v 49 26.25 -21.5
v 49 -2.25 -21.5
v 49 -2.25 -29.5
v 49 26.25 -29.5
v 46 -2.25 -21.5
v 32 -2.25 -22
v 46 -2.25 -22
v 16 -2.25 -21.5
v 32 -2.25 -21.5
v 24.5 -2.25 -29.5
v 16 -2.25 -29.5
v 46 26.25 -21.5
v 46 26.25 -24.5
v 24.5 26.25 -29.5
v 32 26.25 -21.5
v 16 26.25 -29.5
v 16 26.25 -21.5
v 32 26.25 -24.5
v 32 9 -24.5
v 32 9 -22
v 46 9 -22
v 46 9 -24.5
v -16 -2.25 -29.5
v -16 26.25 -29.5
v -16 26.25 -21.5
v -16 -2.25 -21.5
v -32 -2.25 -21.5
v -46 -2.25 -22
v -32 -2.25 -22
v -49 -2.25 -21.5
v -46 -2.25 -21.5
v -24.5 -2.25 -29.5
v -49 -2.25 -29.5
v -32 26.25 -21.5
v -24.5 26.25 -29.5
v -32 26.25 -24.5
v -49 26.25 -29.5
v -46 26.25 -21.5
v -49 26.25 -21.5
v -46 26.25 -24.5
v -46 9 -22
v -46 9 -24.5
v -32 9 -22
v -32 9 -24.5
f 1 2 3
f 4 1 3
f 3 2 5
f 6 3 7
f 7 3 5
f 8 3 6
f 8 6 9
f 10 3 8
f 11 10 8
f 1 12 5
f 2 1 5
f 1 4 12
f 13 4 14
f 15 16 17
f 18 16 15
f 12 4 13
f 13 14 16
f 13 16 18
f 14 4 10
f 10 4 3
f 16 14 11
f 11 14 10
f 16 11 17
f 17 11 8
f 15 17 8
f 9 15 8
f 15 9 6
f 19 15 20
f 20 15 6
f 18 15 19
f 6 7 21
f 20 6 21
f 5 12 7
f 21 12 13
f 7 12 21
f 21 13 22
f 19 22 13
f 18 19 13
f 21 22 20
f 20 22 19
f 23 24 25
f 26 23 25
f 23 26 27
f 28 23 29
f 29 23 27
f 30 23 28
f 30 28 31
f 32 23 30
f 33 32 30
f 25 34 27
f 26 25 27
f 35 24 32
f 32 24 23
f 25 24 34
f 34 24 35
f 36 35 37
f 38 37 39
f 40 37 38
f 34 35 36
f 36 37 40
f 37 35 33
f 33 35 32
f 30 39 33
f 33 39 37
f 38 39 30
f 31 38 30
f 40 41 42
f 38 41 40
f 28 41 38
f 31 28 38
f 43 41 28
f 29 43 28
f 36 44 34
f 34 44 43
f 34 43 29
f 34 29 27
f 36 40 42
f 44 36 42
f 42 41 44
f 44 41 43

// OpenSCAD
/* Hive13 SumoBot Chassis/Frame */ 

// The front plow takes up a depth of 16.
// Some space is used for linesensor screw holes ~14mm

max_w = 98;
max_d = 98 - 16;

batterypack_w = 63;
batterypack_h = 15;
batterypack_d = 49;

bpack2_w = 54;
bpack2_h = 11;
bpack2_d = 31;

micro_w = 70;
micro_h = 15; // We just go to the top of the shield
micro_d = 54;

frame_w = max_w;
frame_h = 3;
frame_d = max_d;

// tire + motor thickness ~30 
wheel_radius = 15.5;
wheel_thickness = 14;
motor_w =14;
motor_h = 54;
motor_d = 20;
lip_w = motor_w;
lip_h = 18;
lip_d = 25;
lip_dist_from_bottom_motor = 36;
tire_distance = 9;
offset_w =2;
wheel_position=10; 
clearance_ground=2;

tab_plow_d=10;// tab to connect to screw in with the plow
linesensor_spacing = 18;
linesensor_depth = 23;
frame_wheel_d = 36;
wheel_clearance = 17;
backwall_thickness = 15;

module baseframe() {
difference() {
union() {
cube([frame_w, frame_d, frame_h]);
// mounting tabs
translate(v=[(frame_w - bpack2_d) /2, frame_d, 0]) {
difference() {
cube([bpack2_d,10 , frame_h+6]);
translate(v=[5, 5, 0]) {
cylinder(r = 2, h=frame_h+6);
}
translate(v=[bpack2_d-5, 5, 0]) {
cylinder(r = 2, h=frame_h+6);
}
}
}
//translate(v=[frame_w-linesensor_spacing-10, frame_d, 0]) {
//difference() {
// cube([10, 10, frame_h]);
// translate(v=[5, 5, 0]) {
// cylinder(r = 2, h=frame_h);
// }
//}
// }
// Wheel/Motor holder block
difference() // subtract out overhangs and wire section
{//Motor holder both sides.....
translate(v = [0,frame_wheel_d+1,frame_h]) {
cube([frame_w, frame_d -(frame_wheel_d + linesensor_depth)-2,motor_d-1+offset_w]);// replace batterypack_h + bpack2_h + micro_h by motor_d -1
}
// Removes space over motors
// translate(v = [2,frame_wheel_d+1,frame_h +bpack2_h]) {
// cube([motor_w, frame_d -(frame_wheel_d + linesensor_depth-1), batterypack_h + micro_h]);
// }
//translate(v = [frame_w-motor_w-2,frame_wheel_d+1,frame_h +bpack2_h]) {
// cube([motor_w, frame_d -(frame_wheel_d + linesensor_depth-1), batterypack_h + micro_h]);
// }
// Remove area over batterypacks
translate(v = [(frame_w + batterypack_d) / 2, frame_d-batterypack_w, frame_h+bpack2_h+wheel_clearance]) {
rotate([0,0,90]) {
batterypack();
}
}

translate(v = [(frame_w + bpack2_d) /2,frame_d-bpack2_w,frame_h]) {
rotate([0,0,90]) {
//bpack2();
cube([bpack2_w, bpack2_d, bpack2_h+wheel_clearance]);
}
}
translate(v = [(frame_w - micro_d) / 2, frame_d-batterypack_w, frame_h+bpack2_h+batterypack_h+wheel_clearance]) {
cube([micro_d, batterypack_w, 40]);
}

}
// Backwall
translate(v=[(frame_w + bpack2_d+10) /2-bpack2_d,frame_d-bpack2_w-backwall_thickness-2,frame_h]) {
cube([bpack2_d-10, backwall_thickness, bpack2_h+wheel_clearance]);
}
// Backwall second piece
translate(v = [(frame_w + bpack2_d)/2-bpack2_d,10,frame_h]) {
cube([bpack2_d, 7, bpack2_h+micro_h+batterypack_h]);
}
} // union


// Remove linesensor area
translate(v = [0,frame_d-linesensor_depth,0]) {
cube([linesensor_spacing, linesensor_depth, frame_h]);
}
translate(v = [frame_w - linesensor_spacing,frame_d-linesensor_depth,0]) {
cube([linesensor_spacing, linesensor_depth, frame_h]);
}
// Remove tires
translate(v = [0,0,0]) {
cube([motor_w + wheel_thickness + 4, frame_wheel_d, frame_h]);
}
translate(v = [frame_w-motor_w-wheel_thickness-4,0,0]) {
cube([motor_w + wheel_thickness + 4, frame_wheel_d, frame_h]);
}
// Remove unneeded space in the back
translate(v =[(frame_w + bpack2_d-5) /2-bpack2_d,0,0]) {
cube([bpack2_d+10, 10, frame_h]);
}
// Remove a hole for power switch
translate(v = [frame_w-linesensor_spacing-15,frame_d-linesensor_depth,0]) {
cube([15, 23, frame_h]);
}
// This one is mainly for looks
translate(v = [linesensor_spacing,frame_d-linesensor_depth,0]) {
cube([15, 23, frame_h]);
}
// Remove the wheels
// Right Tire
translate(v = [max_w-2, 7,-motor_d+22+offset_w]) {
rotate(a = [270, 180, 0]) {
motor();
}
}
// Left Tire
translate(v = [2, 7, 22+offset_w]) {
rotate(a = [270, 0, 0]) {
motor();
}
}

} // difference
}

module batterypack() {
color([0, 127, 127, 255]) {
cube(size=[batterypack_d, batterypack_w, batterypack_h],center=true);
}
}

module bpack2() {
color([127,127,0,255]) {
cube([bpack2_w, bpack2_d, bpack2_h]);
}
}

module micro() {
cube([micro_w, micro_d, micro_h]);
}

module motor() {
color([0,0,0,255]) {
union() {
cube(size=[motor_w, motor_h, motor_d], center = true );
// Lip
translate(v = [0, lip_dist_from_bottom_motor-lip_h, 0]) {//[0, -(lip_d-motor_d)/2, lip_dist_from_bottom_motor]
cube(size=[lip_w, lip_h, lip_d],center=true);
}
// wheel
translate(v = [-motor_w,-(motor_h-wheel_position)/2,0]) {//[motor_w,motor_d/2,motor_d/2]
rotate(a = [0, 90, 0]) {
cylinder(r = wheel_radius, h = wheel_thickness, center=true);
}
}
}
}
}


//
//translate(v =[0,0,6]) {
//baseframe();
//}

// NEW START WITH CENTERED DESIGN //

rotate(a=[0,180,0]){
difference(){
union(){
//motor top holder 
translate(v=[0,12,frame_h/2+(bpack2_h+wheel_clearance)/2]){
cube(size=[frame_w,motor_h-lip_h-wheel_radius-wheel_position+lip_h,bpack2_h+wheel_clearance], center=true);}
}//union end
//start removing 
//motors
translate(v=[(frame_w-motor_w)/2-3,0,wheel_radius-frame_h/2-clearance_ground]){
rotate(a=[0,0,0]){
motor();}}
mirror ([1,0,0]) {
translate(v=[(frame_w-motor_w)/2-3,0,wheel_radius-frame_h/2-clearance_ground]){
rotate(a=[0,0,0]){
motor();}}}
// big battery
translate(v=[0,0,frame_h/2+(bpack2_h+micro_h+batterypack_h)/2+batterypack_h]){
batterypack();}
//center piece between wheels
translate(v=[0,0,frame_h/2+ (bpack2_h+wheel_clearance)/2]){
cube(size=[bpack2_d+1, bpack2_w, bpack2_h+wheel_clearance],center=true);}
//motor holder
translate(v=[0,12,(motor_d+frame_h)/2]){
cube(size=[frame_w,motor_h-lip_h-wheel_radius-wheel_position+lip_h,motor_d], center=true);}// replace batterypack_h + bpack2_h + micro_h by motor_d -1
}//difference end
}//rotate end
